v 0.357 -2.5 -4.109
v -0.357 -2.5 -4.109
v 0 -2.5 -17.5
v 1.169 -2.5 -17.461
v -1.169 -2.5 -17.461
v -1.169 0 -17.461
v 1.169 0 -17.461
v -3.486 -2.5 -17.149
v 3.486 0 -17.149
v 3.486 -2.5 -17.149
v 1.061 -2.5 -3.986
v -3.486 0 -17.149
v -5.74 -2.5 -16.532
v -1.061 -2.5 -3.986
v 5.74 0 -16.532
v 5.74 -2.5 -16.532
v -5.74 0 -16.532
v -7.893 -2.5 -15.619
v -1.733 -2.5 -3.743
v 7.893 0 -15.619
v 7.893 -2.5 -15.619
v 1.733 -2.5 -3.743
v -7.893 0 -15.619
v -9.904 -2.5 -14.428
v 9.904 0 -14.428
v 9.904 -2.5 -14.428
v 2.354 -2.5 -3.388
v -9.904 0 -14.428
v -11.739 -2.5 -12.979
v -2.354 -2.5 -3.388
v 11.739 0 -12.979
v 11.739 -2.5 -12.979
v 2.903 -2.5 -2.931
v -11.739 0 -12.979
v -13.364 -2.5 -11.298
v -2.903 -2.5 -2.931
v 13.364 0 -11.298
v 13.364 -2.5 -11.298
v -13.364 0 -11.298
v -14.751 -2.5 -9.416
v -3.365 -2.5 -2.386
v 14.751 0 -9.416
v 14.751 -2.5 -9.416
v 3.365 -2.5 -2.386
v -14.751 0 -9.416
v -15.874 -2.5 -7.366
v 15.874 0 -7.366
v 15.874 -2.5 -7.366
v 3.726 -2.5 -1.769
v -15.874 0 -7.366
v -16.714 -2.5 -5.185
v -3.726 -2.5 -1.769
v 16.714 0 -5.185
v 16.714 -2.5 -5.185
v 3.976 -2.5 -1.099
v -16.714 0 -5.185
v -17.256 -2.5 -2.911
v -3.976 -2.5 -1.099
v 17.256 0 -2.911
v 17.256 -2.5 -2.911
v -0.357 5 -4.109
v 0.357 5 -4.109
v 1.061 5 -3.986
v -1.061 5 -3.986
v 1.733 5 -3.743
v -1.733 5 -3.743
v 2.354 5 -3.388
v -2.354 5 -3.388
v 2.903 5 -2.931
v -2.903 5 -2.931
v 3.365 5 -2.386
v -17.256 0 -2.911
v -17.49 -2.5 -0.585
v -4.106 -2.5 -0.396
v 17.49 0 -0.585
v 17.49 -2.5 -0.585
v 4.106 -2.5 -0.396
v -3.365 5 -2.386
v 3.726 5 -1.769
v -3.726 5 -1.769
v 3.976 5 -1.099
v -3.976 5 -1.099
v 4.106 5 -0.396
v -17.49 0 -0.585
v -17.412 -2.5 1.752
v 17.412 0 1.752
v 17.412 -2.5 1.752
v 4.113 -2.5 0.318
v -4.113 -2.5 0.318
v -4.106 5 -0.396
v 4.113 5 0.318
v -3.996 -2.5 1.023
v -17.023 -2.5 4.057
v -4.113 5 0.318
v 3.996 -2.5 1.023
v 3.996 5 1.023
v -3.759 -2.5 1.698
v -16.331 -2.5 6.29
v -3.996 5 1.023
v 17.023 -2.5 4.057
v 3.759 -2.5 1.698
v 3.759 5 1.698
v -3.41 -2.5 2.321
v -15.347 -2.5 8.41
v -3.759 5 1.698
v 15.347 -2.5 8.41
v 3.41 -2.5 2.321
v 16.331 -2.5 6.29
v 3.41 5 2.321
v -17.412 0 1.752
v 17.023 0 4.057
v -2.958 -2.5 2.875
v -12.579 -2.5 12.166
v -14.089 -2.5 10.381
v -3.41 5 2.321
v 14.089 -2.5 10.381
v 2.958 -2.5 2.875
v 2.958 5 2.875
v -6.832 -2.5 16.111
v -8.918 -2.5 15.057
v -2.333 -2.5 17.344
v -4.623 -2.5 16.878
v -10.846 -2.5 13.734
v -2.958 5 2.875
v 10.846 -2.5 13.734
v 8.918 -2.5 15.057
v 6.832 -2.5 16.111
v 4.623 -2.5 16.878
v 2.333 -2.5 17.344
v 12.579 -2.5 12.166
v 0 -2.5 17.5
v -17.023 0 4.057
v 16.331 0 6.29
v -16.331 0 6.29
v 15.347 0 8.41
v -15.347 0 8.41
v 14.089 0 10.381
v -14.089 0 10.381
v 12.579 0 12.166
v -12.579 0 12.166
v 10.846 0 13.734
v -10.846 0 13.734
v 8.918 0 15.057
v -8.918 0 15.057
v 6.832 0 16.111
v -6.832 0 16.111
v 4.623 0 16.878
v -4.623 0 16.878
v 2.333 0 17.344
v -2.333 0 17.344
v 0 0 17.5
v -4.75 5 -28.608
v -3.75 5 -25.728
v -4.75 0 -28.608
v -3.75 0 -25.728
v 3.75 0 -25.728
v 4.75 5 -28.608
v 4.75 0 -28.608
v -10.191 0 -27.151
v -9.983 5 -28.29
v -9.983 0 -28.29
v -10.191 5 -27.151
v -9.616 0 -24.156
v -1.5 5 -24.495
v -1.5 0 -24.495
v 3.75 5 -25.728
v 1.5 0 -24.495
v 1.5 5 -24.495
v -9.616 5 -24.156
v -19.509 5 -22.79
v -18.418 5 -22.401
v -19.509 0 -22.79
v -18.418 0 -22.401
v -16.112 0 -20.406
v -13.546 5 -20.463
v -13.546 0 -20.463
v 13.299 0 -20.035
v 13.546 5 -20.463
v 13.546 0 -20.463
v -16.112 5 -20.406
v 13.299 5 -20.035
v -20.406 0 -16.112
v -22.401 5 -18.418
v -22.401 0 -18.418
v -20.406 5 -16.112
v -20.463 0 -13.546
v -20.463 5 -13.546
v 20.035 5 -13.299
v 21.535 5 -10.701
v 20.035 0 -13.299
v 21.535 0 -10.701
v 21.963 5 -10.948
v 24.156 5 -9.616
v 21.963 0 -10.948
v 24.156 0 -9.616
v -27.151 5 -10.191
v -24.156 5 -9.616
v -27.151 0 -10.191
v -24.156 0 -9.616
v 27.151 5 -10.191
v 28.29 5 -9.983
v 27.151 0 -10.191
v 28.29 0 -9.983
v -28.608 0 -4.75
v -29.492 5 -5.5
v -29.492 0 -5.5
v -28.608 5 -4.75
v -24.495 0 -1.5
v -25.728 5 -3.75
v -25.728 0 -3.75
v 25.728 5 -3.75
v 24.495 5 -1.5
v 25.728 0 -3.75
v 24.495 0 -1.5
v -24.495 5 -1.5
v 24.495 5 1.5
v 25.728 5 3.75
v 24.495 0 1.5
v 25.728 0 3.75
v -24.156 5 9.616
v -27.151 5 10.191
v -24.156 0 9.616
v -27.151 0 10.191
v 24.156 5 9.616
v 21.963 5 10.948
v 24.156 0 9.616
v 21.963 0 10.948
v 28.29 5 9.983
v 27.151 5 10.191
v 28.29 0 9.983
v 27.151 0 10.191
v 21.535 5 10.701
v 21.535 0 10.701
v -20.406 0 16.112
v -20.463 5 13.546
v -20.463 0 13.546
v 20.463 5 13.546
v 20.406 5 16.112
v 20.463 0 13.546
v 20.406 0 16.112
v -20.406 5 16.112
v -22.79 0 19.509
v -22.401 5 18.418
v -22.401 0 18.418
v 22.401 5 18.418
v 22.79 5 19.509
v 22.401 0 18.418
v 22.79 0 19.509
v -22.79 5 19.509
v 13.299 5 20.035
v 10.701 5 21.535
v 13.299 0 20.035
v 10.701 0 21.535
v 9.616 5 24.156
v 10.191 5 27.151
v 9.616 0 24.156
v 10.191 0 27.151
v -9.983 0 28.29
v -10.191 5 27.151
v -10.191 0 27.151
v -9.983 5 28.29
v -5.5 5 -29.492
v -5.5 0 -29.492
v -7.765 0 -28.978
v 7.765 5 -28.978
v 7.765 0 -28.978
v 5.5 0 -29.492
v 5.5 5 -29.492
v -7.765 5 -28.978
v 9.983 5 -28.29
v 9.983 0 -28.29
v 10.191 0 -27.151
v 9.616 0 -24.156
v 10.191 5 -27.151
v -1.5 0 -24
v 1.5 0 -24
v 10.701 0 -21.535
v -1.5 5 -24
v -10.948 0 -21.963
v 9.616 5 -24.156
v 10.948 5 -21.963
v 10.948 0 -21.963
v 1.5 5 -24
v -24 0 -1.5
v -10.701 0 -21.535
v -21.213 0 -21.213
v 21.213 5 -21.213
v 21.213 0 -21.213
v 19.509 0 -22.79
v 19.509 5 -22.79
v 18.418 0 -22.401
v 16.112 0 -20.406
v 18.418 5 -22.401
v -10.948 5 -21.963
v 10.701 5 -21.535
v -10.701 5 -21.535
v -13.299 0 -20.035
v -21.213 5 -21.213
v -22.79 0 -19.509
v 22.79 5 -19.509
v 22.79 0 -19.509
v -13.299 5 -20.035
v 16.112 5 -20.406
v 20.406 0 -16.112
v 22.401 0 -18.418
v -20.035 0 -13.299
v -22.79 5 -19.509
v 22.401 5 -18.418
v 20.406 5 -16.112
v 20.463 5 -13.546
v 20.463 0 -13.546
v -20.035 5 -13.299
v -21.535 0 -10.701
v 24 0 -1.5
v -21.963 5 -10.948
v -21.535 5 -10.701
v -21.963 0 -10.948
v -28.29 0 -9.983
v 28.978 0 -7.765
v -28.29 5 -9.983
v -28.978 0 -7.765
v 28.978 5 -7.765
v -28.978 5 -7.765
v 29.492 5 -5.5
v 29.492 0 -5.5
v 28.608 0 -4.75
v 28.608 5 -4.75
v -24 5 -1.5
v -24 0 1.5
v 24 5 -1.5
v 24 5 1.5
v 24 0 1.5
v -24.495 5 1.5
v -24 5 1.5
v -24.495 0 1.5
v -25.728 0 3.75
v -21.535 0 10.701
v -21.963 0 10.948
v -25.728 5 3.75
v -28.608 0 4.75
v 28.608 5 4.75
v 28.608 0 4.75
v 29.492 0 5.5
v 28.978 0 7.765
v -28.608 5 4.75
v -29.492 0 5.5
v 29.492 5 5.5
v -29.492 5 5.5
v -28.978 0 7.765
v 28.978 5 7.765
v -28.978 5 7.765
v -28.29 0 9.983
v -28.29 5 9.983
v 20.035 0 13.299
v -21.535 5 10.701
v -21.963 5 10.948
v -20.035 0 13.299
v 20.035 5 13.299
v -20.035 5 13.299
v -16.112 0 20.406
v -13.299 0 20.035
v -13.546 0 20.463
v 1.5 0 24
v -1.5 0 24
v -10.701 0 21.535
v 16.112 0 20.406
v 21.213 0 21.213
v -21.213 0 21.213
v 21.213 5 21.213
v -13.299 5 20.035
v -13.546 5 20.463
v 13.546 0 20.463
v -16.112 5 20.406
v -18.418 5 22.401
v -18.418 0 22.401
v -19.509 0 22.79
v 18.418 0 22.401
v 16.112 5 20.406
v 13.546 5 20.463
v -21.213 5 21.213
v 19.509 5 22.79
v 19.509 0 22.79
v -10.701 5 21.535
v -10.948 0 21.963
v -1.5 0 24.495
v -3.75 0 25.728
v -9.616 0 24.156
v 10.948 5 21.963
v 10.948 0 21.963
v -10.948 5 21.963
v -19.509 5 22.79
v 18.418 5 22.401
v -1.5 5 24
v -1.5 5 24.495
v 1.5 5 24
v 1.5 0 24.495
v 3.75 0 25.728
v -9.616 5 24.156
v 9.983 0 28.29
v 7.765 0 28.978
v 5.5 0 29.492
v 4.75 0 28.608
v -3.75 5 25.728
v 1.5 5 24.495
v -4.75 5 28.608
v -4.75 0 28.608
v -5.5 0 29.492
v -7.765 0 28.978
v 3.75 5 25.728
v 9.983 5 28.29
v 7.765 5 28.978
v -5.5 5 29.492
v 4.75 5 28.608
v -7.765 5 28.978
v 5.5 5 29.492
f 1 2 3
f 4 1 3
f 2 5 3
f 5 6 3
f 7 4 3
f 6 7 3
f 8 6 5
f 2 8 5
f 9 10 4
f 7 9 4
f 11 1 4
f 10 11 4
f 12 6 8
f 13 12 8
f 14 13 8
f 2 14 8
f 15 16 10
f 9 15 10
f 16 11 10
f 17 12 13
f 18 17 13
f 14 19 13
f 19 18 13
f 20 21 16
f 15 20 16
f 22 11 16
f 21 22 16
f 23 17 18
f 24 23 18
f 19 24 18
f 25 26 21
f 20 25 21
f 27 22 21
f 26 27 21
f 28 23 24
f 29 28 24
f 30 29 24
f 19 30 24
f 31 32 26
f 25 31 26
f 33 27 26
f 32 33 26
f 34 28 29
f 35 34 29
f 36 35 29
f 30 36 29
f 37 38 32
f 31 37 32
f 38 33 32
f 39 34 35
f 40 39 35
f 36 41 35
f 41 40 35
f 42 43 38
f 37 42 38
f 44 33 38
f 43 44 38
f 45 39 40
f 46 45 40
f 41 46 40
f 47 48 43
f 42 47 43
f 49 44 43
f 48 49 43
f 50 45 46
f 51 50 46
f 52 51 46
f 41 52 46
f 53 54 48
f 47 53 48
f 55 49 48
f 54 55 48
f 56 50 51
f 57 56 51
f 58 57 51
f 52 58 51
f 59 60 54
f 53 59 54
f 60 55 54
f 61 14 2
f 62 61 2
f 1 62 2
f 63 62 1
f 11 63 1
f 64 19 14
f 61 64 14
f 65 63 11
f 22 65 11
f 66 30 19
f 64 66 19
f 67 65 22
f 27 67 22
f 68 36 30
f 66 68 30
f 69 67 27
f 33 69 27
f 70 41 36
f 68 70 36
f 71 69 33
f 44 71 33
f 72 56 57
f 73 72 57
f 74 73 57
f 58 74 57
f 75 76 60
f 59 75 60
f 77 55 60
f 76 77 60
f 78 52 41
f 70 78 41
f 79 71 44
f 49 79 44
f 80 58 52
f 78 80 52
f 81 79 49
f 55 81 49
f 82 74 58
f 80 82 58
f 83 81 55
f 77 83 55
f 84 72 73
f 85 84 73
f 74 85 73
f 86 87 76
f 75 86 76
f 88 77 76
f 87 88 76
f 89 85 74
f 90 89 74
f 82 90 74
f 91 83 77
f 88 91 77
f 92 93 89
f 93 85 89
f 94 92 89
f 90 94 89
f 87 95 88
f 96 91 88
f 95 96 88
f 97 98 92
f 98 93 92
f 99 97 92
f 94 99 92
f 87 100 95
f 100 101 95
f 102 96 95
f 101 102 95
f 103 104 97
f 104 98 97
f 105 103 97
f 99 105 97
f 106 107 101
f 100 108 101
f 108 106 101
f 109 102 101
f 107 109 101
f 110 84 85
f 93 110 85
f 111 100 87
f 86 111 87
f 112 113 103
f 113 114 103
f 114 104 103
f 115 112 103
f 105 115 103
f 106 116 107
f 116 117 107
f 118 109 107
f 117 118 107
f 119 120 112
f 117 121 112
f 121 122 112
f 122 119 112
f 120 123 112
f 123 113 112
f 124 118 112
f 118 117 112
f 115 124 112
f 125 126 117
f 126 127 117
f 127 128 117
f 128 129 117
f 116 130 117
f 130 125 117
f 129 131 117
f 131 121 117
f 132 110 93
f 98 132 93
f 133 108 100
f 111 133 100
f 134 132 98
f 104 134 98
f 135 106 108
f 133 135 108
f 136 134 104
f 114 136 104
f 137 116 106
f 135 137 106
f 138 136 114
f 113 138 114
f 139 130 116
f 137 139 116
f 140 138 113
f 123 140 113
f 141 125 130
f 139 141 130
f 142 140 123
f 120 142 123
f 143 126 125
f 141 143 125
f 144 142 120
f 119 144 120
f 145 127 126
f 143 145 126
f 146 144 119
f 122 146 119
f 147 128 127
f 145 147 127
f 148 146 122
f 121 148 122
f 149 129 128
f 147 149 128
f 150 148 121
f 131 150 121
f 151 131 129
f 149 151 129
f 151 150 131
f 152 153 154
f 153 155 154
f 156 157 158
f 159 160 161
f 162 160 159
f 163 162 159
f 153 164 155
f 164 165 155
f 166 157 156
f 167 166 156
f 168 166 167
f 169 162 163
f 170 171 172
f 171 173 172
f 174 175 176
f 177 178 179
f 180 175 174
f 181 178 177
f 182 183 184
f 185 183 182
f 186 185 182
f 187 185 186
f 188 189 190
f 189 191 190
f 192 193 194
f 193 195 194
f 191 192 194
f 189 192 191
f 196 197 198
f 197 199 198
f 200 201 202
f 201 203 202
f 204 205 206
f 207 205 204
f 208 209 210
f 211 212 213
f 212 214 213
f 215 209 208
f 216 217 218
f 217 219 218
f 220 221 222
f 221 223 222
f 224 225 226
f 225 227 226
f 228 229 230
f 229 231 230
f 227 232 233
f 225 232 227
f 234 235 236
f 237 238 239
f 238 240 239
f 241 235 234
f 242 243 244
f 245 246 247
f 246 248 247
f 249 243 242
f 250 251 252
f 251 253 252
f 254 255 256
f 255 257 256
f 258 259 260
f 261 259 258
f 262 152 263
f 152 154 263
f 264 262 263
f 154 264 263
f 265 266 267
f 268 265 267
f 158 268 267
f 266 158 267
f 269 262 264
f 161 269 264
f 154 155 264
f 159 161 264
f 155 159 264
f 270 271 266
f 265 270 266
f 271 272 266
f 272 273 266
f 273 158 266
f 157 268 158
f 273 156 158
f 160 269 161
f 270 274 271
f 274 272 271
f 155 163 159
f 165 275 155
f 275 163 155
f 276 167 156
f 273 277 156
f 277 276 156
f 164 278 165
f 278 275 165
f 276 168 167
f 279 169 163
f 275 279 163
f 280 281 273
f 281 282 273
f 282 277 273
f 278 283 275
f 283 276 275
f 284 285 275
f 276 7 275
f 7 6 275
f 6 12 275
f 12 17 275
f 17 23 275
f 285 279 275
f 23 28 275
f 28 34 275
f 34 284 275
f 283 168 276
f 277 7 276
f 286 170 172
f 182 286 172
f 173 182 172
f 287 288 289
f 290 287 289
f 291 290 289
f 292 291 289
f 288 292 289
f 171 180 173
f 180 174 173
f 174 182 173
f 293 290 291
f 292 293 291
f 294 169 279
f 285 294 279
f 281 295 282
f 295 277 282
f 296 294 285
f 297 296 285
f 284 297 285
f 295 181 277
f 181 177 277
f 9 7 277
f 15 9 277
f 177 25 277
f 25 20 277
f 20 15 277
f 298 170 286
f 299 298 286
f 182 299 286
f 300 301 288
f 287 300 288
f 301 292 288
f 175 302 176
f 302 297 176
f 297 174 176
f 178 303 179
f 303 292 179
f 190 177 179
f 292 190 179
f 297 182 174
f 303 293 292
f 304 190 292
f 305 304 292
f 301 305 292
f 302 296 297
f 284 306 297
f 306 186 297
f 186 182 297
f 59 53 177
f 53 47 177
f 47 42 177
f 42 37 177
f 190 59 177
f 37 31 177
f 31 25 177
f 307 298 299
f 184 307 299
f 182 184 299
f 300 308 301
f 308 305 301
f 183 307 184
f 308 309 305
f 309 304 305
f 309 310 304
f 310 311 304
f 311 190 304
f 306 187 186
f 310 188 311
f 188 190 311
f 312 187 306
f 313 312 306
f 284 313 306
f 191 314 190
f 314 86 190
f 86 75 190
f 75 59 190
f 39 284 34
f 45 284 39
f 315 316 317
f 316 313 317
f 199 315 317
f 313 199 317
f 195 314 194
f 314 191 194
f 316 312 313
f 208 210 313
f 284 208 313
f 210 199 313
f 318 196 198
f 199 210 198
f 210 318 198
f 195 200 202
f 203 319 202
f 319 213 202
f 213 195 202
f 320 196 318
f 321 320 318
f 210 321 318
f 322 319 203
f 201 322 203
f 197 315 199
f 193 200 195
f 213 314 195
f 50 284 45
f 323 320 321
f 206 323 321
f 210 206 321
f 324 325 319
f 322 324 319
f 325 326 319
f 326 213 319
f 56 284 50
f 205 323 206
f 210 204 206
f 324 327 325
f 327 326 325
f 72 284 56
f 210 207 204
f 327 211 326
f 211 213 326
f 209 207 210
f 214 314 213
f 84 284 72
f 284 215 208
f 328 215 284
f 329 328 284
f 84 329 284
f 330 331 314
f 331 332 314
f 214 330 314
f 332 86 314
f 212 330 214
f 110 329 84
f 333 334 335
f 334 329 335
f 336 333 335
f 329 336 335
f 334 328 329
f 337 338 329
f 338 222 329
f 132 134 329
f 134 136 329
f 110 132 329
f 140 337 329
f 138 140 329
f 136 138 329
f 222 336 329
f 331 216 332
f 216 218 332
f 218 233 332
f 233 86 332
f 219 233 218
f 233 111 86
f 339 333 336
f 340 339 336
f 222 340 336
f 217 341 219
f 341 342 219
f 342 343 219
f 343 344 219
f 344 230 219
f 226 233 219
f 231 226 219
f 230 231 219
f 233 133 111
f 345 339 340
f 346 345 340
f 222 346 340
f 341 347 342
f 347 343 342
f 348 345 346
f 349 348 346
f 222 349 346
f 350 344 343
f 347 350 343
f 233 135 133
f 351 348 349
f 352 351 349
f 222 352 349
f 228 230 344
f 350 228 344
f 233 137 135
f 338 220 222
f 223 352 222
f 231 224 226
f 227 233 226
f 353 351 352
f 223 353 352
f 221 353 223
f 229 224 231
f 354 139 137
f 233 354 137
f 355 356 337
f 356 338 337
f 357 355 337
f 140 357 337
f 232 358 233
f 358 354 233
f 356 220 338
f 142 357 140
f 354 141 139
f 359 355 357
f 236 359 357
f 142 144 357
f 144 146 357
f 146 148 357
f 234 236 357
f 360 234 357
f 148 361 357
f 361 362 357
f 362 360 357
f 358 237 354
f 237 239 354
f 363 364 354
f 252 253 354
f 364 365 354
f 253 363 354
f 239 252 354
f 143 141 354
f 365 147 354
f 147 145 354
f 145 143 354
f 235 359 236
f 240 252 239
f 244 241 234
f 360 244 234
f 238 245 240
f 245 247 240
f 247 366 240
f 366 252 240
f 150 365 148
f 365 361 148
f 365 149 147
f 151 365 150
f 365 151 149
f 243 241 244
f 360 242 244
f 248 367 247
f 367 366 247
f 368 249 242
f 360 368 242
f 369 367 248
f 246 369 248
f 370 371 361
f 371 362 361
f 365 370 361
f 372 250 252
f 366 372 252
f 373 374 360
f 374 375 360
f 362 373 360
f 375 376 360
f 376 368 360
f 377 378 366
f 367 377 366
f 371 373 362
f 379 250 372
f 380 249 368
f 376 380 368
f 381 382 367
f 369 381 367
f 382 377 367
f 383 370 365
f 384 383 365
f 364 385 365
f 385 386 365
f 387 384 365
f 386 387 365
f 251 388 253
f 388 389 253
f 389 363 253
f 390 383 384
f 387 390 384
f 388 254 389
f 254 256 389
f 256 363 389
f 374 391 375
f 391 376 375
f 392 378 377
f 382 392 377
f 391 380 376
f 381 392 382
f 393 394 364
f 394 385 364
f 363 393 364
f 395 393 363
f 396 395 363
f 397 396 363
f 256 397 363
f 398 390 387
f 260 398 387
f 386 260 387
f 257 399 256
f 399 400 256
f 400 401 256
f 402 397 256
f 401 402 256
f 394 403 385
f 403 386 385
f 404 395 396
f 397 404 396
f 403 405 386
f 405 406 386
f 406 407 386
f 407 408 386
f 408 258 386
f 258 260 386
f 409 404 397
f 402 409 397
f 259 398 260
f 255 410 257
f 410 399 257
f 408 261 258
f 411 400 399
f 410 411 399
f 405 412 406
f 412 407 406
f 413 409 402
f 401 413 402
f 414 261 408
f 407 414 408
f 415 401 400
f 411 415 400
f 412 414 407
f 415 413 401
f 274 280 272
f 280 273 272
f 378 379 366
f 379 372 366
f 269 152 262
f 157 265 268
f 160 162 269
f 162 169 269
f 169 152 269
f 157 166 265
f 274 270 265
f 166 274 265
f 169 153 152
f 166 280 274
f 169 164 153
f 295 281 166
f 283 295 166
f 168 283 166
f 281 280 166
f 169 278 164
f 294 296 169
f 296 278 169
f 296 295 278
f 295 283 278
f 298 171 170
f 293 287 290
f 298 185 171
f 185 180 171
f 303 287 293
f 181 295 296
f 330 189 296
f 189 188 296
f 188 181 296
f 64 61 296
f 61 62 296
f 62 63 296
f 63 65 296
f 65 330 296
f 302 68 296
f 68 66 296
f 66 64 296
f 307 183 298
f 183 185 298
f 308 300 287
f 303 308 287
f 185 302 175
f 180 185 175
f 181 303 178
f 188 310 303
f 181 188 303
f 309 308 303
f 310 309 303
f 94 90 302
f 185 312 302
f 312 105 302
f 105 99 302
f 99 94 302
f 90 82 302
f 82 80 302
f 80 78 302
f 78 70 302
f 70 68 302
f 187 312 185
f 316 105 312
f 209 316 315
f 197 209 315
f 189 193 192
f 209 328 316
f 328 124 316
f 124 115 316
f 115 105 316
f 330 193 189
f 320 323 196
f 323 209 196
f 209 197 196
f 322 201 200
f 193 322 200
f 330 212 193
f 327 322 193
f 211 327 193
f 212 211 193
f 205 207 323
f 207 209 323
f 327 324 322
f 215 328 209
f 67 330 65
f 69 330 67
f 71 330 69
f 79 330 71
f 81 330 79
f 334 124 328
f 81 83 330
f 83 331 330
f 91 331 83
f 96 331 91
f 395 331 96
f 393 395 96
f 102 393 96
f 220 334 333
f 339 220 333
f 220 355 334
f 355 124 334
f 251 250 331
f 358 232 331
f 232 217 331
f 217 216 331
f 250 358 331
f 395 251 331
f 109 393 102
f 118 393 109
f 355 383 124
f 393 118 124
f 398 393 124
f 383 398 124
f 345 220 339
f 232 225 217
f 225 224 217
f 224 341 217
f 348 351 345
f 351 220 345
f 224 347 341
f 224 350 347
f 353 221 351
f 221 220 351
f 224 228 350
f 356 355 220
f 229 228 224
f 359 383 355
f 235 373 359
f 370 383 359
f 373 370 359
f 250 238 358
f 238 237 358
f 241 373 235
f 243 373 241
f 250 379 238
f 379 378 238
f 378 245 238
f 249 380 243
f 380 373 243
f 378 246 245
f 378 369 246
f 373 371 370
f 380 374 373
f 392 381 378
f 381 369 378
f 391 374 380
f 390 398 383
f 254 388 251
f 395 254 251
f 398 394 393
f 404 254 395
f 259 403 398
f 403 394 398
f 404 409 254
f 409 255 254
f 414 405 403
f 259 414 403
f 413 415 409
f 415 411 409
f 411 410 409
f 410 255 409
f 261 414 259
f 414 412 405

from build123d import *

# Parameters (mm, degrees)
BOSS_EXTRUDE1_DEPTH     = 5
SKETCH5_R               = 17.5
BOSS_EXTRUDE2_DEPTH     = 2.5
CUT_EXTRUDE2_DEPTH      = 1
CUT_EXTRUDE2_DEPTH_BACK = 8.5


with BuildPart() as part:
    # Sketch1 → Boss-Extrude1 (new body)
    with BuildSketch(Plane(origin=(0, 0, 0), x_dir=(1, 0, 0), z_dir=(0, 1, 0))):
        with BuildLine():
            Line((-1.5, 24.494818027), (-3.75, 25.728146066))
            Line((-3.75, 25.728146066), (-4.75, 28.608346684))
            Line((-4.75, 28.608346684), (-5.5, 29.491524206))
            ThreePointArc((-5.5, 29.491524206), (-6.518225952, 29.283318296), (-7.528629065, 29.039968051))
            ThreePointArc((-7.528629065, 29.039968051), (-7.764571353, 28.977774789), (-8, 28.91366459))
            ThreePointArc((-8, 28.91366459), (-8.996709886, 28.619210528), (-9.982622382, 28.290409159))
            Line((-9.982622382, 28.290409159), (-10.190552674, 27.150554989))
            Line((-10.190552674, 27.150554989), (-9.616477769, 24.156228086))
            Line((-9.616477769, 24.156228086), (-10.948370908, 21.963134673))
            Line((-10.948370908, 21.963134673), (-10.700961894, 21.534609691))
            Line((-10.700961894, 21.534609691), (-13.299038106, 20.034609691))
            Line((-13.299038106, 20.034609691), (-13.546447119, 20.463134673))
            Line((-13.546447119, 20.463134673), (-16.111668297, 20.406228086))
            Line((-16.111668297, 20.406228086), (-18.41779401, 22.400554989))
            Line((-18.41779401, 22.400554989), (-19.508901824, 22.790409159))
            ThreePointArc((-19.508901824, 22.790409159), (-20.28660841, 22.100984575), (-21.039968051, 21.385035525))
            ThreePointArc((-21.039968051, 21.385035525), (-21.213203436, 21.213203436), (-21.385035525, 21.039968051))
            ThreePointArc((-21.385035525, 21.039968051), (-22.100984575, 20.28660841), (-22.790409159, 19.508901824))
            Line((-22.790409159, 19.508901824), (-22.400554989, 18.41779401))
            Line((-22.400554989, 18.41779401), (-20.406228086, 16.111668297))
            Line((-20.406228086, 16.111668297), (-20.463134673, 13.546447119))
            Line((-20.463134673, 13.546447119), (-20.034609691, 13.299038106))
            Line((-20.034609691, 13.299038106), (-21.534609691, 10.700961894))
            Line((-21.534609691, 10.700961894), (-21.963134673, 10.948370908))
            Line((-21.963134673, 10.948370908), (-24.156228086, 9.616477769))
            Line((-24.156228086, 9.616477769), (-27.150554989, 10.190552674))
            Line((-27.150554989, 10.190552674), (-28.290409159, 9.982622382))
            ThreePointArc((-28.290409159, 9.982622382), (-28.619210528, 8.996709886), (-28.91366459, 8))
            ThreePointArc((-28.91366459, 8), (-28.977774789, 7.764571353), (-29.039968051, 7.528629065))
            ThreePointArc((-29.039968051, 7.528629065), (-29.283318296, 6.518225952), (-29.491524206, 5.5))
            Line((-29.491524206, 5.5), (-28.608346684, 4.75))
            Line((-28.608346684, 4.75), (-25.728146066, 3.75))
            Line((-25.728146066, 3.75), (-24.494818027, 1.5))
            Line((-24.494818027, 1.5), (-24, 1.5))
            Line((-24, 1.5), (-24, -1.5))
            Line((-24, -1.5), (-24.494818027, -1.5))
            Line((-24.494818027, -1.5), (-25.728146066, -3.75))
            Line((-25.728146066, -3.75), (-28.608346684, -4.75))
            Line((-28.608346684, -4.75), (-29.491524206, -5.5))
            ThreePointArc((-29.491524206, -5.5), (-29.283318296, -6.518225952), (-29.039968051, -7.528629065))
            ThreePointArc((-29.039968051, -7.528629065), (-28.977774789, -7.764571353), (-28.91366459, -8))
            ThreePointArc((-28.91366459, -8), (-28.619210528, -8.996709886), (-28.290409159, -9.982622382))
            Line((-28.290409159, -9.982622382), (-27.150554989, -10.190552674))
            Line((-27.150554989, -10.190552674), (-24.156228086, -9.616477769))
            Line((-24.156228086, -9.616477769), (-21.963134673, -10.948370908))
            Line((-21.963134673, -10.948370908), (-21.534609691, -10.700961894))
            Line((-21.534609691, -10.700961894), (-20.034609691, -13.299038106))
            Line((-20.034609691, -13.299038106), (-20.463134673, -13.546447119))
            Line((-20.463134673, -13.546447119), (-20.406228086, -16.111668297))
            Line((-20.406228086, -16.111668297), (-22.400554989, -18.41779401))
            Line((-22.400554989, -18.41779401), (-22.790409159, -19.508901824))
            ThreePointArc((-22.790409159, -19.508901824), (-22.100984575, -20.28660841), (-21.385035525, -21.039968051))
            ThreePointArc((-21.385035525, -21.039968051), (-21.213203436, -21.213203436), (-21.039968051, -21.385035525))
            ThreePointArc((-21.039968051, -21.385035525), (-20.28660841, -22.100984575), (-19.508901824, -22.790409159))
            Line((-19.508901824, -22.790409159), (-18.41779401, -22.400554989))
            Line((-18.41779401, -22.400554989), (-16.111668297, -20.406228086))
            Line((-16.111668297, -20.406228086), (-13.546447119, -20.463134673))
            Line((-13.546447119, -20.463134673), (-13.299038106, -20.034609691))
            Line((-13.299038106, -20.034609691), (-10.700961894, -21.534609691))
            Line((-10.700961894, -21.534609691), (-10.948370908, -21.963134673))
            Line((-10.948370908, -21.963134673), (-9.616477769, -24.156228086))
            Line((-9.616477769, -24.156228086), (-10.190552674, -27.150554989))
            Line((-10.190552674, -27.150554989), (-9.982622382, -28.290409159))
            ThreePointArc((-9.982622382, -28.290409159), (-8.996709886, -28.619210528), (-8, -28.91366459))
            ThreePointArc((-8, -28.91366459), (-7.764571353, -28.977774789), (-7.528629065, -29.039968051))
            ThreePointArc((-7.528629065, -29.039968051), (-6.518225952, -29.283318296), (-5.5, -29.491524206))
            Line((-5.5, -29.491524206), (-4.75, -28.608346684))
            Line((-4.75, -28.608346684), (-3.75, -25.728146066))
            Line((-3.75, -25.728146066), (-1.5, -24.494818027))
            Line((-1.5, -24.494818027), (-1.5, -24))
            Line((-1.5, -24), (1.5, -24))
            Line((1.5, -24), (1.5, -24.494818027))
            Line((1.5, -24.494818027), (3.75, -25.728146066))
            Line((3.75, -25.728146066), (4.75, -28.608346684))
            Line((4.75, -28.608346684), (5.5, -29.491524206))
            ThreePointArc((5.5, -29.491524206), (6.518225952, -29.283318296), (7.528629065, -29.039968051))
            ThreePointArc((7.528629065, -29.039968051), (7.764571353, -28.977774789), (8, -28.91366459))
            ThreePointArc((8, -28.91366459), (8.996709886, -28.619210528), (9.982622382, -28.290409159))
            Line((9.982622382, -28.290409159), (10.190552674, -27.150554989))
            Line((10.190552674, -27.150554989), (9.616477769, -24.156228086))
            Line((9.616477769, -24.156228086), (10.948370908, -21.963134673))
            Line((10.948370908, -21.963134673), (10.700961894, -21.534609691))
            Line((10.700961894, -21.534609691), (13.299038106, -20.034609691))
            Line((13.299038106, -20.034609691), (13.546447119, -20.463134673))
            Line((13.546447119, -20.463134673), (16.111668297, -20.406228086))
            Line((16.111668297, -20.406228086), (18.41779401, -22.400554989))
            Line((18.41779401, -22.400554989), (19.508901824, -22.790409159))
            ThreePointArc((19.508901824, -22.790409159), (20.28660841, -22.100984575), (21.039968051, -21.385035525))
            ThreePointArc((21.039968051, -21.385035525), (21.213203436, -21.213203436), (21.385035525, -21.039968051))
            ThreePointArc((21.385035525, -21.039968051), (22.100984575, -20.28660841), (22.790409159, -19.508901824))
            Line((22.790409159, -19.508901824), (22.400554989, -18.41779401))
            Line((22.400554989, -18.41779401), (20.406228086, -16.111668297))
            Line((20.406228086, -16.111668297), (20.463134673, -13.546447119))
            Line((20.463134673, -13.546447119), (20.034609691, -13.299038106))
            Line((20.034609691, -13.299038106), (21.534609691, -10.700961894))
            Line((21.534609691, -10.700961894), (21.963134673, -10.948370908))
            Line((21.963134673, -10.948370908), (24.156228086, -9.616477769))
            Line((24.156228086, -9.616477769), (27.150554989, -10.190552674))
            Line((27.150554989, -10.190552674), (28.290409159, -9.982622382))
            ThreePointArc((28.290409159, -9.982622382), (28.619210528, -8.996709886), (28.91366459, -8))
            ThreePointArc((28.91366459, -8), (28.977774789, -7.764571353), (29.039968051, -7.528629065))
            ThreePointArc((29.039968051, -7.528629065), (29.283318296, -6.518225952), (29.491524206, -5.5))
            Line((29.491524206, -5.5), (28.608346684, -4.75))
            Line((28.608346684, -4.75), (25.728146066, -3.75))
            Line((25.728146066, -3.75), (24.494818027, -1.5))
            Line((24.494818027, -1.5), (24, -1.5))
            Line((24, -1.5), (24, 1.5))
            Line((24, 1.5), (24.494818027, 1.5))
            Line((24.494818027, 1.5), (25.728146066, 3.75))
            Line((25.728146066, 3.75), (28.608346684, 4.75))
            Line((28.608346684, 4.75), (29.491524206, 5.5))
            ThreePointArc((29.491524206, 5.5), (29.283318296, 6.518225952), (29.039968051, 7.528629065))
            ThreePointArc((29.039968051, 7.528629065), (28.977774789, 7.764571353), (28.91366459, 8))
            ThreePointArc((28.91366459, 8), (28.619210528, 8.996709886), (28.290409159, 9.982622382))
            Line((28.290409159, 9.982622382), (27.150554989, 10.190552674))
            Line((27.150554989, 10.190552674), (24.156228086, 9.616477769))
            Line((24.156228086, 9.616477769), (21.963134673, 10.948370908))
            Line((21.963134673, 10.948370908), (21.534609691, 10.700961894))
            Line((21.534609691, 10.700961894), (20.034609691, 13.299038106))
            Line((20.034609691, 13.299038106), (20.463134673, 13.546447119))
            Line((20.463134673, 13.546447119), (20.406228086, 16.111668297))
            Line((20.406228086, 16.111668297), (22.400554989, 18.41779401))
            Line((22.400554989, 18.41779401), (22.790409159, 19.508901824))
            ThreePointArc((22.790409159, 19.508901824), (22.100984575, 20.28660841), (21.385035525, 21.039968051))
            ThreePointArc((21.385035525, 21.039968051), (21.213203436, 21.213203436), (21.039968051, 21.385035525))
            ThreePointArc((21.039968051, 21.385035525), (20.28660841, 22.100984575), (19.508901824, 22.790409159))
            Line((19.508901824, 22.790409159), (18.41779401, 22.400554989))
            Line((18.41779401, 22.400554989), (16.111668297, 20.406228086))
            Line((16.111668297, 20.406228086), (13.546447119, 20.463134673))
            Line((13.546447119, 20.463134673), (13.299038106, 20.034609691))
            Line((13.299038106, 20.034609691), (10.700961894, 21.534609691))
            Line((10.700961894, 21.534609691), (10.948370908, 21.963134673))
            Line((10.948370908, 21.963134673), (9.616477769, 24.156228086))
            Line((9.616477769, 24.156228086), (10.190552674, 27.150554989))
            Line((10.190552674, 27.150554989), (9.982622382, 28.290409159))
            ThreePointArc((9.982622382, 28.290409159), (8.996709886, 28.619210528), (8, 28.91366459))
            ThreePointArc((8, 28.91366459), (7.764571353, 28.977774789), (7.528629065, 29.039968051))
            ThreePointArc((7.528629065, 29.039968051), (6.518225952, 29.283318296), (5.5, 29.491524206))
            Line((5.5, 29.491524206), (4.75, 28.608346684))
            Line((4.75, 28.608346684), (3.75, 25.728146066))
            Line((3.75, 25.728146066), (1.5, 24.494818027))
            Line((1.5, 24.494818027), (1.5, 24))
            Line((1.5, 24), (-1.5, 24))
            Line((-1.5, 24), (-1.5, 24.494818027))
        make_face()
    extrude(amount=BOSS_EXTRUDE1_DEPTH)

    # Sketch5 → Boss-Extrude2 (add)
    with BuildSketch(Plane.XZ):
        Circle(SKETCH5_R)
    extrude(amount=BOSS_EXTRUDE2_DEPTH)

    # Sketch6 → Cut-Extrude2 (cut, two sides)
    with BuildSketch(Plane.XZ.offset(2.5)) as cut_extrude2_sk:
        with BuildLine():
            ThreePointArc((4.125, 0), (3.82214204, 1.551404275), (2.958039892, 2.875))
            Line((2.958039892, 2.875), (-2.958039892, 2.875))
            ThreePointArc((-2.958039892, 2.875), (-1.551404275, -3.82214204), (4.125, 0))
        make_face()
    extrude(amount=CUT_EXTRUDE2_DEPTH, mode=Mode.SUBTRACT)
    extrude(cut_extrude2_sk.sketch, amount=-CUT_EXTRUDE2_DEPTH_BACK, mode=Mode.SUBTRACT)


solid = part.part
